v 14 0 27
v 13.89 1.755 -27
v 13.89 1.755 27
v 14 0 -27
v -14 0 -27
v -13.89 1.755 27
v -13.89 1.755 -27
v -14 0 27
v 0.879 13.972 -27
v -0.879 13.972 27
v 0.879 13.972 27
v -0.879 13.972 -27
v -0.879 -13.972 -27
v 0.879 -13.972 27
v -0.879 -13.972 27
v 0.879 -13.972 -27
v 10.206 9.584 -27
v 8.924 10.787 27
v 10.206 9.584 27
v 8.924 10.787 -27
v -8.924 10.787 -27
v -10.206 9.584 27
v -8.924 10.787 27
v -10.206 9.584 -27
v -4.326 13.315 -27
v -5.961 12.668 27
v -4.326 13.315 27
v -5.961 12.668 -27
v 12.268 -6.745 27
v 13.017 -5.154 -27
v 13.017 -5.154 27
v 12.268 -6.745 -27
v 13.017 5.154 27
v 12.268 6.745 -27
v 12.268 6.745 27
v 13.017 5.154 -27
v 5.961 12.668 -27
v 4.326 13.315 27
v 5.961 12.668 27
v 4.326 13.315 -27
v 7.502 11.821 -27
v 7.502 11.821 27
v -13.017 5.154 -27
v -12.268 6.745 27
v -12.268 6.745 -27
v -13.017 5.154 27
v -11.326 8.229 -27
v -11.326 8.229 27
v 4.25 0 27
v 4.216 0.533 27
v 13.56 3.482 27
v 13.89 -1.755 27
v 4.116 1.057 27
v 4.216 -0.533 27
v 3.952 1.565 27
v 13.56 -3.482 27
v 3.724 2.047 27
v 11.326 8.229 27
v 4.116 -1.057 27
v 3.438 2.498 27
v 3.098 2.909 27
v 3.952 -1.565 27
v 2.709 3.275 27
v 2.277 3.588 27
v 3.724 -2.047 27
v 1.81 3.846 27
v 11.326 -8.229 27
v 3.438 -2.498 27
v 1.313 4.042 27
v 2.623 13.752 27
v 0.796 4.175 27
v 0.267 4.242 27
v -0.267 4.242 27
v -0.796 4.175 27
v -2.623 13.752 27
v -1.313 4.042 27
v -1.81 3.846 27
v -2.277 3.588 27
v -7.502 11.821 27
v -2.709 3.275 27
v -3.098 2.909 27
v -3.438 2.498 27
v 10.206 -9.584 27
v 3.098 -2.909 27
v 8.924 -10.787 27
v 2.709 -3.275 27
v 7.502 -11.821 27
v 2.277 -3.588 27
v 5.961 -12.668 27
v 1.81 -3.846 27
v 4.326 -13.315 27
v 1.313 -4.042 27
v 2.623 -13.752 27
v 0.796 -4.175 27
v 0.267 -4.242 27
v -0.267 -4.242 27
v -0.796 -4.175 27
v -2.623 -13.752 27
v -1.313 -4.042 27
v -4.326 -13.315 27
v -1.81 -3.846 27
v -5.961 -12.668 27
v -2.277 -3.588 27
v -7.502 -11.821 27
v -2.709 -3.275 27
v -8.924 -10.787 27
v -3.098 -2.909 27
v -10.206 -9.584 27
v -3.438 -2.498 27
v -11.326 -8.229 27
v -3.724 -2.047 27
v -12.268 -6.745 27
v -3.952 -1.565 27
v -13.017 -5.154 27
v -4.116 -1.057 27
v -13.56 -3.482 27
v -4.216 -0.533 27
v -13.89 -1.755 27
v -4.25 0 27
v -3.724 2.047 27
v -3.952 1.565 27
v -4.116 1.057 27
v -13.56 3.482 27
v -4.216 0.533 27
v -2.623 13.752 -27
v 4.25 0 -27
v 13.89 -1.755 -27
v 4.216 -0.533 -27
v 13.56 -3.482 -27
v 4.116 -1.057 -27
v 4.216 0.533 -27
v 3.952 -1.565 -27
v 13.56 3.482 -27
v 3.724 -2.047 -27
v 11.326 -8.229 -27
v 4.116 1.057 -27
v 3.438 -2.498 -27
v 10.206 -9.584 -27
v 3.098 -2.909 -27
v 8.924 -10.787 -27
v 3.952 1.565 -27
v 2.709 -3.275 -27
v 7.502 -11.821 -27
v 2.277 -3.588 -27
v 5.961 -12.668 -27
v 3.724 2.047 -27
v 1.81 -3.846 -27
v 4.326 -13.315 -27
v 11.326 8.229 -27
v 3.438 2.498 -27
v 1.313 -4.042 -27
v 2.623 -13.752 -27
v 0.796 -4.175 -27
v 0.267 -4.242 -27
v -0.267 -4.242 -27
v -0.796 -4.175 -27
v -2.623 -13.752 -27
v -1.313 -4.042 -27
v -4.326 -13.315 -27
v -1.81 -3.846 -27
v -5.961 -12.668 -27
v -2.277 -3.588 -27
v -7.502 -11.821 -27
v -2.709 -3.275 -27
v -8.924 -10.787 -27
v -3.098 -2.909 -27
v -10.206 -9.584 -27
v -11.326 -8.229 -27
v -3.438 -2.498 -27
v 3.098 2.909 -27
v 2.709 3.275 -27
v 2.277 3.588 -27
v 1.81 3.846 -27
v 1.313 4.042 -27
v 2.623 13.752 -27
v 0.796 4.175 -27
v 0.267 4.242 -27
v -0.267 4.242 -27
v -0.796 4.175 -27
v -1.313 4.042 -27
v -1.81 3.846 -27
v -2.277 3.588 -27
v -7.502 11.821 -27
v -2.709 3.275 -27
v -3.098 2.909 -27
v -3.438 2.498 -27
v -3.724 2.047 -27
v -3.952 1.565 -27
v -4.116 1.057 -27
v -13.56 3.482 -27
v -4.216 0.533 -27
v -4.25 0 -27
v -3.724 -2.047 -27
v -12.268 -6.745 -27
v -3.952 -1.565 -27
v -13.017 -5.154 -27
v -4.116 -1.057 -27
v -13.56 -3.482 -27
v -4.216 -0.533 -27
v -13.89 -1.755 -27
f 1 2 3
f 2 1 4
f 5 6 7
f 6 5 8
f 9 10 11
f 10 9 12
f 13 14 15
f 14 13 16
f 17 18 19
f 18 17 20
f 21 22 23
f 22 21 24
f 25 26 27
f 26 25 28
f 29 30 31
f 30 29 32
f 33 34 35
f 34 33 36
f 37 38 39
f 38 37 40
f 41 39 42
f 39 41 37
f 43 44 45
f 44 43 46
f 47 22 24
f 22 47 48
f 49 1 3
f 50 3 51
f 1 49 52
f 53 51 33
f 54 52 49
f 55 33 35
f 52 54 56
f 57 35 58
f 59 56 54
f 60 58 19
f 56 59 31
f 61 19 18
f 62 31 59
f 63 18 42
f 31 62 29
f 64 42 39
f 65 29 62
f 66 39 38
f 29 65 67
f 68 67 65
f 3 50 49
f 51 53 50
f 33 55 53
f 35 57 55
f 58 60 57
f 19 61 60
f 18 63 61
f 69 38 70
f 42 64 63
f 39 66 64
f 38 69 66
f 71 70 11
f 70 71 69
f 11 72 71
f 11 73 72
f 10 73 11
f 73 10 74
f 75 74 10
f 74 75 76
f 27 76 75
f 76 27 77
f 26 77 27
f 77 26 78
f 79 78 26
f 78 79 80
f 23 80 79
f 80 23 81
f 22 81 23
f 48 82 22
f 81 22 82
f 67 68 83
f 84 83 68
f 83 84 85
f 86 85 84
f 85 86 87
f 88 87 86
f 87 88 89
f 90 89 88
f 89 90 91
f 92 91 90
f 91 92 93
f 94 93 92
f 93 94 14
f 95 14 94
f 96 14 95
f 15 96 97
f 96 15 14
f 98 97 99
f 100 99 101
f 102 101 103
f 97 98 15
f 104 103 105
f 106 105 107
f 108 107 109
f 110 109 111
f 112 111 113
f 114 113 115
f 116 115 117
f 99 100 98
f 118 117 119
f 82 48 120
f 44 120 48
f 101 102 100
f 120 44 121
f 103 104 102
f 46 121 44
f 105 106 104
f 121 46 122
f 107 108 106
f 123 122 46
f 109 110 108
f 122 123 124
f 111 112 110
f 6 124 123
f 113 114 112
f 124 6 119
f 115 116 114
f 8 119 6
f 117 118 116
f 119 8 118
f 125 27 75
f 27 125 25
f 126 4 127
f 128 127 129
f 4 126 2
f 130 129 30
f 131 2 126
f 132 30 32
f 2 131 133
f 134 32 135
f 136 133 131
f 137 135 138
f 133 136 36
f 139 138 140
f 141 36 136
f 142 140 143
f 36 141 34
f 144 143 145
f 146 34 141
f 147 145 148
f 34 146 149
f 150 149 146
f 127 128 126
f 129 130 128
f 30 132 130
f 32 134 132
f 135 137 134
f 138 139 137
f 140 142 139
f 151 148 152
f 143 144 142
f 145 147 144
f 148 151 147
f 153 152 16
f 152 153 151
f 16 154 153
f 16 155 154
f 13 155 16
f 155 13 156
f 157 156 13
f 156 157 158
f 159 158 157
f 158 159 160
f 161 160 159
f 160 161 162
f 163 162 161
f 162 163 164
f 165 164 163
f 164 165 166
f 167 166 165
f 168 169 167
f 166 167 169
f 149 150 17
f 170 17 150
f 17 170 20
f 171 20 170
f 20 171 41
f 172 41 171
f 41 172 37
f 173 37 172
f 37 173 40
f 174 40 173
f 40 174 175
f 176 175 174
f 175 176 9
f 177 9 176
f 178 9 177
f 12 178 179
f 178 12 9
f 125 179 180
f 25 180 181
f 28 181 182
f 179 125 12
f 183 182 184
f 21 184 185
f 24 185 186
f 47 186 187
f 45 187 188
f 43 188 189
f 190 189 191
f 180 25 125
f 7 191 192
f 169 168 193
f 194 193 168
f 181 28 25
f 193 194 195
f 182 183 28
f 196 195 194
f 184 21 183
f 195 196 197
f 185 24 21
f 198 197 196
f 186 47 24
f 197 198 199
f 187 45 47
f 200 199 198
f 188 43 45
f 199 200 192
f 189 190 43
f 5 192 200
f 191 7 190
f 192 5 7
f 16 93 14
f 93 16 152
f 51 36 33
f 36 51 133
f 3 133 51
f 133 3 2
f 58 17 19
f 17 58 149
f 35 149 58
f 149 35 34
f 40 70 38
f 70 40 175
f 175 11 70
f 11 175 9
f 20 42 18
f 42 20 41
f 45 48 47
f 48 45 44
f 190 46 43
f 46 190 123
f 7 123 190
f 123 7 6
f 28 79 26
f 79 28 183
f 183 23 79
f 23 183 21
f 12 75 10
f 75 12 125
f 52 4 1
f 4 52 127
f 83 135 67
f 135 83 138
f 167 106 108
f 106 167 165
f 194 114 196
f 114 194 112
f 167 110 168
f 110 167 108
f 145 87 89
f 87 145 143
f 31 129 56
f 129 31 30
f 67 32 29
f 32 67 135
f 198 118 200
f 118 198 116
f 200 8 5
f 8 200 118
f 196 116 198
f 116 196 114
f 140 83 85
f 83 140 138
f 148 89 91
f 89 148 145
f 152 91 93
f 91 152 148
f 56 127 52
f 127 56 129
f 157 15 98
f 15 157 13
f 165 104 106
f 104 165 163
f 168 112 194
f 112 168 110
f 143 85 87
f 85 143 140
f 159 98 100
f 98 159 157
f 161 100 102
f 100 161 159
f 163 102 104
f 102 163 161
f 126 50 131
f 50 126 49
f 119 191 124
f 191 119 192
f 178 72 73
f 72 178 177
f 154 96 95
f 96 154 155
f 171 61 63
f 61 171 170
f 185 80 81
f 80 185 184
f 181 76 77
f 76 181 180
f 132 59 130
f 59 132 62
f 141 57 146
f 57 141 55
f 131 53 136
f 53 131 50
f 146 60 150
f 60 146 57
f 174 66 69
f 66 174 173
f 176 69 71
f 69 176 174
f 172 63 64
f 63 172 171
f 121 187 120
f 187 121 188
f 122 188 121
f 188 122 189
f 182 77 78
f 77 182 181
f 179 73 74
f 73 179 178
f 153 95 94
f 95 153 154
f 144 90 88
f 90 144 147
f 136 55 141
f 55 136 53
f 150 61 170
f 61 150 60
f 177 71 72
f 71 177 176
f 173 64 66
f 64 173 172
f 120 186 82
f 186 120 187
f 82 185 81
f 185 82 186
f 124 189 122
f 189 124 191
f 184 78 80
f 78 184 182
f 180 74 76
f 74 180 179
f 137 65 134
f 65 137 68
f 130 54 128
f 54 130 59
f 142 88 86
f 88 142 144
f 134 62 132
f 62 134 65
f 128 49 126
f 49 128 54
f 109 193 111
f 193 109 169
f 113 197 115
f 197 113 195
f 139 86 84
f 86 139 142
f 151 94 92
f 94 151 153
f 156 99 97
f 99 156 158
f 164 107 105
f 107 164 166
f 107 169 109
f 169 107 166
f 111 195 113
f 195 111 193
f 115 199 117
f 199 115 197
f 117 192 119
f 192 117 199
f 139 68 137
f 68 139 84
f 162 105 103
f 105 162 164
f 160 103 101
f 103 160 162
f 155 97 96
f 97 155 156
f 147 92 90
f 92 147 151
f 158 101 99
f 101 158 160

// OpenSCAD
$fn = 50;


difference() {
	union() {
		translate(v = [0, 0, -27.0000000000]) {
			cylinder(h = 54, r = 14.0000000000);
		}
	}
	union() {
		translate(v = [0, 0, -100.0000000000]) {
			cylinder(h = 200, r = 4.2500000000);
		}
	}
}
